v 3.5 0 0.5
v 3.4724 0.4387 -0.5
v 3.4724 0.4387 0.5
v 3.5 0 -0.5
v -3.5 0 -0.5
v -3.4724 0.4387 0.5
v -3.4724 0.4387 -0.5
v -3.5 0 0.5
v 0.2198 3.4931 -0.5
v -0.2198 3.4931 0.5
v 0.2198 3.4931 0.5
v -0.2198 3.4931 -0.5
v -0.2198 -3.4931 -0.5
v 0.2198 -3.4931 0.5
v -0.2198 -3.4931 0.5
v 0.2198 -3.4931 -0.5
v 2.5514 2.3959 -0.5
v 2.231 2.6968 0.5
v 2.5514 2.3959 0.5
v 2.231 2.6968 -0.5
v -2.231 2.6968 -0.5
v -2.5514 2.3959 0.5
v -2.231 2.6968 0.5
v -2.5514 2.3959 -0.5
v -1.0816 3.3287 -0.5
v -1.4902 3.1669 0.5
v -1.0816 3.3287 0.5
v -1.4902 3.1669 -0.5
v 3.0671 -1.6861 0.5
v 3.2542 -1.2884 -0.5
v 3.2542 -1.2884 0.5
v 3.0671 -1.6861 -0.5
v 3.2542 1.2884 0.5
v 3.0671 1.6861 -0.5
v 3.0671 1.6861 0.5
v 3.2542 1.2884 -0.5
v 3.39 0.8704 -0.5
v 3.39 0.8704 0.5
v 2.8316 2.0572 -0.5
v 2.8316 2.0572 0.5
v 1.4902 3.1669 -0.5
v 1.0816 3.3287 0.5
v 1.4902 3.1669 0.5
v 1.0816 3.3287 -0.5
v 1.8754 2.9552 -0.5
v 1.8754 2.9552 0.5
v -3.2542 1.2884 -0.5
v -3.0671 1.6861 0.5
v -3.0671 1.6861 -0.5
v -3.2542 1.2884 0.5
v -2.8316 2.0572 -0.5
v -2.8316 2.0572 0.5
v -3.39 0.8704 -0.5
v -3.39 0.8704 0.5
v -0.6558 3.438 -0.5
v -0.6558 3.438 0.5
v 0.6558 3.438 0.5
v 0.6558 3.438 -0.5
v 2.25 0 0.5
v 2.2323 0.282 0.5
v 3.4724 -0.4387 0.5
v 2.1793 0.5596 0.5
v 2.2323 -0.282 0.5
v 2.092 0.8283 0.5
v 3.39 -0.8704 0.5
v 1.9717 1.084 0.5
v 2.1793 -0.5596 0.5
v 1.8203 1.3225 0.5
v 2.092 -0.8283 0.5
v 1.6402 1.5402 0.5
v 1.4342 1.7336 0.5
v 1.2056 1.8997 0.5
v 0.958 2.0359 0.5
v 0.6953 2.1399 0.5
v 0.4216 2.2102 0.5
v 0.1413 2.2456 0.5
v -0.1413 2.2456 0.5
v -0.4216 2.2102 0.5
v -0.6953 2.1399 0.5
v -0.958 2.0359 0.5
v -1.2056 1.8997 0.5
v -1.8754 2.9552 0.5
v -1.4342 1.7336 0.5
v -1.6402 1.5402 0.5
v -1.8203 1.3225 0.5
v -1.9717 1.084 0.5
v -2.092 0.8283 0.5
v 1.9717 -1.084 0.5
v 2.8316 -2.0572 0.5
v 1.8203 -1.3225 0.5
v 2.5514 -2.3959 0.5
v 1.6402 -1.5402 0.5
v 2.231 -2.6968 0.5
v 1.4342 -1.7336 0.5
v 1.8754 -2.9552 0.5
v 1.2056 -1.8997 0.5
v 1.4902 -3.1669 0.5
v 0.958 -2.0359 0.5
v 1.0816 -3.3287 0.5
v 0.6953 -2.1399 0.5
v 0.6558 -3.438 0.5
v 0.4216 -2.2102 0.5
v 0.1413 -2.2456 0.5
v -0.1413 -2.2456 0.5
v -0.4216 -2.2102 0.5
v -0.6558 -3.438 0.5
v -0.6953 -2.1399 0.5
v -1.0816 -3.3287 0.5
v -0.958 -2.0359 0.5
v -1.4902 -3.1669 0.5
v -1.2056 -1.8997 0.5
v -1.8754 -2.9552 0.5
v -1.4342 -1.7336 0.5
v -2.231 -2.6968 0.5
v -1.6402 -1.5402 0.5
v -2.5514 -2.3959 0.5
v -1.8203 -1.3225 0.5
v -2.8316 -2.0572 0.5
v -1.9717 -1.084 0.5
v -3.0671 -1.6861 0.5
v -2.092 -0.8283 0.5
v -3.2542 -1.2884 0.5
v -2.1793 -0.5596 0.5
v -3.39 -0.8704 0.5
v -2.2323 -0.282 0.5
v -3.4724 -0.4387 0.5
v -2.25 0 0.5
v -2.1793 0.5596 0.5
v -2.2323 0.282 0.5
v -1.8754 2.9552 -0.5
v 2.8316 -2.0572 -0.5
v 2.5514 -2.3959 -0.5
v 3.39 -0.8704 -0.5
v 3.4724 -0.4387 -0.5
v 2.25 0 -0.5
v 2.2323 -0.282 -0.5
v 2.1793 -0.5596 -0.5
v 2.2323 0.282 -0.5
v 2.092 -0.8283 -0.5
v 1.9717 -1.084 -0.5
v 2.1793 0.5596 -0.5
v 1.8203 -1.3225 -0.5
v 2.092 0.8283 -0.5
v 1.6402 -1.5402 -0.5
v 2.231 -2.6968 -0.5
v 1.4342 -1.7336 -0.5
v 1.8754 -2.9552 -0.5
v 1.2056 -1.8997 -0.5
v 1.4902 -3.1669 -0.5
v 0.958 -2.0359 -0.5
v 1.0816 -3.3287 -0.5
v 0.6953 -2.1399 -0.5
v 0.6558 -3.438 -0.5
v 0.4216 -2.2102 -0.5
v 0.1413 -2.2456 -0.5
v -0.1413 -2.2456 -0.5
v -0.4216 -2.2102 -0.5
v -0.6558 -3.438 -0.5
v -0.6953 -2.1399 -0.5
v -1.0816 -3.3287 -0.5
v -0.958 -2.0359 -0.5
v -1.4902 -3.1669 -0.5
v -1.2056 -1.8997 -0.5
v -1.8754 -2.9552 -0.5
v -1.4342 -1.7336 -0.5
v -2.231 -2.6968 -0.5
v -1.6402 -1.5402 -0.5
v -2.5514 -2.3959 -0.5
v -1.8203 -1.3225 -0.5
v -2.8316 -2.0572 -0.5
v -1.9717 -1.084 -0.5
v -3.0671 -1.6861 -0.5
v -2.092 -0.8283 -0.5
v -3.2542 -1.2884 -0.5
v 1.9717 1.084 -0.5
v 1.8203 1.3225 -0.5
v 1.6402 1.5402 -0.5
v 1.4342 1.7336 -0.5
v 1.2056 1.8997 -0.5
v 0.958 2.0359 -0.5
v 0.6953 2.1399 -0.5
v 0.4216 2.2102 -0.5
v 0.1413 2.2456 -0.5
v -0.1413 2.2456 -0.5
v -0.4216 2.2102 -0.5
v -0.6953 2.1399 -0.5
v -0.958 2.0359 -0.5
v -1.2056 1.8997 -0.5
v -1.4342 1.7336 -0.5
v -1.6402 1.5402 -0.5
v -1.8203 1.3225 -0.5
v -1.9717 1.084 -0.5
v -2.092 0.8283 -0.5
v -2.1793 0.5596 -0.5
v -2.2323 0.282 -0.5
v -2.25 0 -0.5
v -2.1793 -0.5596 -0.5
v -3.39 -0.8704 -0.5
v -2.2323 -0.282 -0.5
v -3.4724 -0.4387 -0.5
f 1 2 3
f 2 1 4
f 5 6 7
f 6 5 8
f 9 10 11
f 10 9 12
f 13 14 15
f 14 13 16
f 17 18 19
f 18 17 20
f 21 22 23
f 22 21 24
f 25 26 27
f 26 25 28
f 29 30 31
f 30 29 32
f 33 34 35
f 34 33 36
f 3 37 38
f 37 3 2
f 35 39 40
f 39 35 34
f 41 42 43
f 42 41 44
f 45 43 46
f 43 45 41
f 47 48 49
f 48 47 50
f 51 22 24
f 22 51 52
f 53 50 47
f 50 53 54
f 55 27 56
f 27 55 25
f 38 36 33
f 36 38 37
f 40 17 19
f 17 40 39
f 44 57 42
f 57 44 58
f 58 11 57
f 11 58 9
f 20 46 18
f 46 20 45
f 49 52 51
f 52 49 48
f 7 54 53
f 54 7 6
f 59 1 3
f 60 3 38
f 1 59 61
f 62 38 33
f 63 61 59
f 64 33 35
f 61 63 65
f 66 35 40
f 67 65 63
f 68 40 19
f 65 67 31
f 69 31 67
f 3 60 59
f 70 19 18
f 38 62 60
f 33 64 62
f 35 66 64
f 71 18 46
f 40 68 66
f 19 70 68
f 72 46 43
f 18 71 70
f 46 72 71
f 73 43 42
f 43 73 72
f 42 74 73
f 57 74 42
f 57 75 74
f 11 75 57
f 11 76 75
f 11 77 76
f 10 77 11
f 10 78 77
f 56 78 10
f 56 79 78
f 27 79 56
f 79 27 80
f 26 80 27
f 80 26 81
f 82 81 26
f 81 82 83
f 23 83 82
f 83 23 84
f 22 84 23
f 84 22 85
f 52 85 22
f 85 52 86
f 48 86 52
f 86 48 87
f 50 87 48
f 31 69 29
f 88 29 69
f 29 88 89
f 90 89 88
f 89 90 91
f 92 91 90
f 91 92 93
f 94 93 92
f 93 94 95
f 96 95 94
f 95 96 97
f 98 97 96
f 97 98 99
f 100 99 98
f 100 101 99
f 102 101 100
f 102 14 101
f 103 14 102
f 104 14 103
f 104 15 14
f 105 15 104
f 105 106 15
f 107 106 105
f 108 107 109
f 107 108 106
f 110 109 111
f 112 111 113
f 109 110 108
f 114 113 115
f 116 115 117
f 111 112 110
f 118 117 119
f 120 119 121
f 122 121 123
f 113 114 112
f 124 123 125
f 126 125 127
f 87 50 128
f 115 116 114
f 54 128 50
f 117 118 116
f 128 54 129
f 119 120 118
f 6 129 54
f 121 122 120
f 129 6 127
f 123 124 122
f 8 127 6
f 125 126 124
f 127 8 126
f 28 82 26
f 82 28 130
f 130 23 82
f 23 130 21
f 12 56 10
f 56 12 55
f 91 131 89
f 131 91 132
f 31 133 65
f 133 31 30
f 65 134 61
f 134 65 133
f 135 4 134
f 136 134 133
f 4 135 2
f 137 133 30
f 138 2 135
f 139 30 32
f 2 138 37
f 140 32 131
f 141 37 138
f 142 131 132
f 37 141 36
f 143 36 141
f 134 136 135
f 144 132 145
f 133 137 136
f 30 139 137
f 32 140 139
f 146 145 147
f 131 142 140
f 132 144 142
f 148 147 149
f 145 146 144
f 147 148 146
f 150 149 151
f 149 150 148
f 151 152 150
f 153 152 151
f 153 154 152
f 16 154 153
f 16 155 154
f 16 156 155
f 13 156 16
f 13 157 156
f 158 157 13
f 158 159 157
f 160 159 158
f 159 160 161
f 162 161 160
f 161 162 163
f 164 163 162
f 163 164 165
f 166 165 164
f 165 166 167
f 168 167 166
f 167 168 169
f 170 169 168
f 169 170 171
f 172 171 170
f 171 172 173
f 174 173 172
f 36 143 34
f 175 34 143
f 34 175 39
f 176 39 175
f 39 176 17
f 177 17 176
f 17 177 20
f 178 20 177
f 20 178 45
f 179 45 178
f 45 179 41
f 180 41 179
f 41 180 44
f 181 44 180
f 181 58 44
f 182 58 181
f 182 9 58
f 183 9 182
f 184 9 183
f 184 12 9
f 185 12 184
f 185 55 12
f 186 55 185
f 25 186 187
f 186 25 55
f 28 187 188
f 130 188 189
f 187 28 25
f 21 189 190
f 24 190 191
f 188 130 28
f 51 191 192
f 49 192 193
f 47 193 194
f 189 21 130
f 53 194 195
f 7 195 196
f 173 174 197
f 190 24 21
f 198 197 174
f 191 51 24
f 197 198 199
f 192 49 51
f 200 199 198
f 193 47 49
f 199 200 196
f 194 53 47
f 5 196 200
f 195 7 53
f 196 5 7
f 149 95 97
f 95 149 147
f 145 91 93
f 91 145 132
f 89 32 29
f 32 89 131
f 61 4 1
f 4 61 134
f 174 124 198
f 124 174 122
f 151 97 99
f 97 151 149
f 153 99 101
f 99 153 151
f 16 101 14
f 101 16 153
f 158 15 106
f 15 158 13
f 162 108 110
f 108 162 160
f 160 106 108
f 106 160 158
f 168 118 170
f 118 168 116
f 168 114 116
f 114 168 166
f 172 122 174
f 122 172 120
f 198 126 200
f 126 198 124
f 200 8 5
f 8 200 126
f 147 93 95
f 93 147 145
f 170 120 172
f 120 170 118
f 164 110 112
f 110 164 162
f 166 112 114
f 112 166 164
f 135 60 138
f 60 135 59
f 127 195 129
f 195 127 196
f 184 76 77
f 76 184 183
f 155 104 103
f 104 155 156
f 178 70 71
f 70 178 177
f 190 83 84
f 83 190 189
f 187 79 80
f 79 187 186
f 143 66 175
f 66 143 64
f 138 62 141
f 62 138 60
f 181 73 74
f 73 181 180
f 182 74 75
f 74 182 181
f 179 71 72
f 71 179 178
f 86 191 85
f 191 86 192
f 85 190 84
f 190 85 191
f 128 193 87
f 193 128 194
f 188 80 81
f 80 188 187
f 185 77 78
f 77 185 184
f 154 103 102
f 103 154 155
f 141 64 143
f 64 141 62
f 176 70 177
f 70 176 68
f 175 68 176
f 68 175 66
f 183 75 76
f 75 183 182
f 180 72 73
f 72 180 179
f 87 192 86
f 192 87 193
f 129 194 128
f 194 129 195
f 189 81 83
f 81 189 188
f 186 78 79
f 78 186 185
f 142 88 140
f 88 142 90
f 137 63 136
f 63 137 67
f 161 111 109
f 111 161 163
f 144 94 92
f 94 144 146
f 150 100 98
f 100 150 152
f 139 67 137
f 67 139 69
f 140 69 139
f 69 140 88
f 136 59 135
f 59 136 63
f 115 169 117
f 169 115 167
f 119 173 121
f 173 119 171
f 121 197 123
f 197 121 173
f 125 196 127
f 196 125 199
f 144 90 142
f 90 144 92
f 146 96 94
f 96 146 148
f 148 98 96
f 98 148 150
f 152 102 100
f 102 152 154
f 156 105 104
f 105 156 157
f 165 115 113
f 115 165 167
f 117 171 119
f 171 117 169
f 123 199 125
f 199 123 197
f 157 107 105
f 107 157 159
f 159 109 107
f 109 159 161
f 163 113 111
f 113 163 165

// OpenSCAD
$fn = 50;


difference() {
	union() {
		translate(v = [0, 0, -0.5000000000]) {
			cylinder(h = 1, r = 3.5000000000);
		}
	}
	union() {
		translate(v = [0, 0, -100.0000000000]) {
			cylinder(h = 200, r = 2.2500000000);
		}
	}
}
